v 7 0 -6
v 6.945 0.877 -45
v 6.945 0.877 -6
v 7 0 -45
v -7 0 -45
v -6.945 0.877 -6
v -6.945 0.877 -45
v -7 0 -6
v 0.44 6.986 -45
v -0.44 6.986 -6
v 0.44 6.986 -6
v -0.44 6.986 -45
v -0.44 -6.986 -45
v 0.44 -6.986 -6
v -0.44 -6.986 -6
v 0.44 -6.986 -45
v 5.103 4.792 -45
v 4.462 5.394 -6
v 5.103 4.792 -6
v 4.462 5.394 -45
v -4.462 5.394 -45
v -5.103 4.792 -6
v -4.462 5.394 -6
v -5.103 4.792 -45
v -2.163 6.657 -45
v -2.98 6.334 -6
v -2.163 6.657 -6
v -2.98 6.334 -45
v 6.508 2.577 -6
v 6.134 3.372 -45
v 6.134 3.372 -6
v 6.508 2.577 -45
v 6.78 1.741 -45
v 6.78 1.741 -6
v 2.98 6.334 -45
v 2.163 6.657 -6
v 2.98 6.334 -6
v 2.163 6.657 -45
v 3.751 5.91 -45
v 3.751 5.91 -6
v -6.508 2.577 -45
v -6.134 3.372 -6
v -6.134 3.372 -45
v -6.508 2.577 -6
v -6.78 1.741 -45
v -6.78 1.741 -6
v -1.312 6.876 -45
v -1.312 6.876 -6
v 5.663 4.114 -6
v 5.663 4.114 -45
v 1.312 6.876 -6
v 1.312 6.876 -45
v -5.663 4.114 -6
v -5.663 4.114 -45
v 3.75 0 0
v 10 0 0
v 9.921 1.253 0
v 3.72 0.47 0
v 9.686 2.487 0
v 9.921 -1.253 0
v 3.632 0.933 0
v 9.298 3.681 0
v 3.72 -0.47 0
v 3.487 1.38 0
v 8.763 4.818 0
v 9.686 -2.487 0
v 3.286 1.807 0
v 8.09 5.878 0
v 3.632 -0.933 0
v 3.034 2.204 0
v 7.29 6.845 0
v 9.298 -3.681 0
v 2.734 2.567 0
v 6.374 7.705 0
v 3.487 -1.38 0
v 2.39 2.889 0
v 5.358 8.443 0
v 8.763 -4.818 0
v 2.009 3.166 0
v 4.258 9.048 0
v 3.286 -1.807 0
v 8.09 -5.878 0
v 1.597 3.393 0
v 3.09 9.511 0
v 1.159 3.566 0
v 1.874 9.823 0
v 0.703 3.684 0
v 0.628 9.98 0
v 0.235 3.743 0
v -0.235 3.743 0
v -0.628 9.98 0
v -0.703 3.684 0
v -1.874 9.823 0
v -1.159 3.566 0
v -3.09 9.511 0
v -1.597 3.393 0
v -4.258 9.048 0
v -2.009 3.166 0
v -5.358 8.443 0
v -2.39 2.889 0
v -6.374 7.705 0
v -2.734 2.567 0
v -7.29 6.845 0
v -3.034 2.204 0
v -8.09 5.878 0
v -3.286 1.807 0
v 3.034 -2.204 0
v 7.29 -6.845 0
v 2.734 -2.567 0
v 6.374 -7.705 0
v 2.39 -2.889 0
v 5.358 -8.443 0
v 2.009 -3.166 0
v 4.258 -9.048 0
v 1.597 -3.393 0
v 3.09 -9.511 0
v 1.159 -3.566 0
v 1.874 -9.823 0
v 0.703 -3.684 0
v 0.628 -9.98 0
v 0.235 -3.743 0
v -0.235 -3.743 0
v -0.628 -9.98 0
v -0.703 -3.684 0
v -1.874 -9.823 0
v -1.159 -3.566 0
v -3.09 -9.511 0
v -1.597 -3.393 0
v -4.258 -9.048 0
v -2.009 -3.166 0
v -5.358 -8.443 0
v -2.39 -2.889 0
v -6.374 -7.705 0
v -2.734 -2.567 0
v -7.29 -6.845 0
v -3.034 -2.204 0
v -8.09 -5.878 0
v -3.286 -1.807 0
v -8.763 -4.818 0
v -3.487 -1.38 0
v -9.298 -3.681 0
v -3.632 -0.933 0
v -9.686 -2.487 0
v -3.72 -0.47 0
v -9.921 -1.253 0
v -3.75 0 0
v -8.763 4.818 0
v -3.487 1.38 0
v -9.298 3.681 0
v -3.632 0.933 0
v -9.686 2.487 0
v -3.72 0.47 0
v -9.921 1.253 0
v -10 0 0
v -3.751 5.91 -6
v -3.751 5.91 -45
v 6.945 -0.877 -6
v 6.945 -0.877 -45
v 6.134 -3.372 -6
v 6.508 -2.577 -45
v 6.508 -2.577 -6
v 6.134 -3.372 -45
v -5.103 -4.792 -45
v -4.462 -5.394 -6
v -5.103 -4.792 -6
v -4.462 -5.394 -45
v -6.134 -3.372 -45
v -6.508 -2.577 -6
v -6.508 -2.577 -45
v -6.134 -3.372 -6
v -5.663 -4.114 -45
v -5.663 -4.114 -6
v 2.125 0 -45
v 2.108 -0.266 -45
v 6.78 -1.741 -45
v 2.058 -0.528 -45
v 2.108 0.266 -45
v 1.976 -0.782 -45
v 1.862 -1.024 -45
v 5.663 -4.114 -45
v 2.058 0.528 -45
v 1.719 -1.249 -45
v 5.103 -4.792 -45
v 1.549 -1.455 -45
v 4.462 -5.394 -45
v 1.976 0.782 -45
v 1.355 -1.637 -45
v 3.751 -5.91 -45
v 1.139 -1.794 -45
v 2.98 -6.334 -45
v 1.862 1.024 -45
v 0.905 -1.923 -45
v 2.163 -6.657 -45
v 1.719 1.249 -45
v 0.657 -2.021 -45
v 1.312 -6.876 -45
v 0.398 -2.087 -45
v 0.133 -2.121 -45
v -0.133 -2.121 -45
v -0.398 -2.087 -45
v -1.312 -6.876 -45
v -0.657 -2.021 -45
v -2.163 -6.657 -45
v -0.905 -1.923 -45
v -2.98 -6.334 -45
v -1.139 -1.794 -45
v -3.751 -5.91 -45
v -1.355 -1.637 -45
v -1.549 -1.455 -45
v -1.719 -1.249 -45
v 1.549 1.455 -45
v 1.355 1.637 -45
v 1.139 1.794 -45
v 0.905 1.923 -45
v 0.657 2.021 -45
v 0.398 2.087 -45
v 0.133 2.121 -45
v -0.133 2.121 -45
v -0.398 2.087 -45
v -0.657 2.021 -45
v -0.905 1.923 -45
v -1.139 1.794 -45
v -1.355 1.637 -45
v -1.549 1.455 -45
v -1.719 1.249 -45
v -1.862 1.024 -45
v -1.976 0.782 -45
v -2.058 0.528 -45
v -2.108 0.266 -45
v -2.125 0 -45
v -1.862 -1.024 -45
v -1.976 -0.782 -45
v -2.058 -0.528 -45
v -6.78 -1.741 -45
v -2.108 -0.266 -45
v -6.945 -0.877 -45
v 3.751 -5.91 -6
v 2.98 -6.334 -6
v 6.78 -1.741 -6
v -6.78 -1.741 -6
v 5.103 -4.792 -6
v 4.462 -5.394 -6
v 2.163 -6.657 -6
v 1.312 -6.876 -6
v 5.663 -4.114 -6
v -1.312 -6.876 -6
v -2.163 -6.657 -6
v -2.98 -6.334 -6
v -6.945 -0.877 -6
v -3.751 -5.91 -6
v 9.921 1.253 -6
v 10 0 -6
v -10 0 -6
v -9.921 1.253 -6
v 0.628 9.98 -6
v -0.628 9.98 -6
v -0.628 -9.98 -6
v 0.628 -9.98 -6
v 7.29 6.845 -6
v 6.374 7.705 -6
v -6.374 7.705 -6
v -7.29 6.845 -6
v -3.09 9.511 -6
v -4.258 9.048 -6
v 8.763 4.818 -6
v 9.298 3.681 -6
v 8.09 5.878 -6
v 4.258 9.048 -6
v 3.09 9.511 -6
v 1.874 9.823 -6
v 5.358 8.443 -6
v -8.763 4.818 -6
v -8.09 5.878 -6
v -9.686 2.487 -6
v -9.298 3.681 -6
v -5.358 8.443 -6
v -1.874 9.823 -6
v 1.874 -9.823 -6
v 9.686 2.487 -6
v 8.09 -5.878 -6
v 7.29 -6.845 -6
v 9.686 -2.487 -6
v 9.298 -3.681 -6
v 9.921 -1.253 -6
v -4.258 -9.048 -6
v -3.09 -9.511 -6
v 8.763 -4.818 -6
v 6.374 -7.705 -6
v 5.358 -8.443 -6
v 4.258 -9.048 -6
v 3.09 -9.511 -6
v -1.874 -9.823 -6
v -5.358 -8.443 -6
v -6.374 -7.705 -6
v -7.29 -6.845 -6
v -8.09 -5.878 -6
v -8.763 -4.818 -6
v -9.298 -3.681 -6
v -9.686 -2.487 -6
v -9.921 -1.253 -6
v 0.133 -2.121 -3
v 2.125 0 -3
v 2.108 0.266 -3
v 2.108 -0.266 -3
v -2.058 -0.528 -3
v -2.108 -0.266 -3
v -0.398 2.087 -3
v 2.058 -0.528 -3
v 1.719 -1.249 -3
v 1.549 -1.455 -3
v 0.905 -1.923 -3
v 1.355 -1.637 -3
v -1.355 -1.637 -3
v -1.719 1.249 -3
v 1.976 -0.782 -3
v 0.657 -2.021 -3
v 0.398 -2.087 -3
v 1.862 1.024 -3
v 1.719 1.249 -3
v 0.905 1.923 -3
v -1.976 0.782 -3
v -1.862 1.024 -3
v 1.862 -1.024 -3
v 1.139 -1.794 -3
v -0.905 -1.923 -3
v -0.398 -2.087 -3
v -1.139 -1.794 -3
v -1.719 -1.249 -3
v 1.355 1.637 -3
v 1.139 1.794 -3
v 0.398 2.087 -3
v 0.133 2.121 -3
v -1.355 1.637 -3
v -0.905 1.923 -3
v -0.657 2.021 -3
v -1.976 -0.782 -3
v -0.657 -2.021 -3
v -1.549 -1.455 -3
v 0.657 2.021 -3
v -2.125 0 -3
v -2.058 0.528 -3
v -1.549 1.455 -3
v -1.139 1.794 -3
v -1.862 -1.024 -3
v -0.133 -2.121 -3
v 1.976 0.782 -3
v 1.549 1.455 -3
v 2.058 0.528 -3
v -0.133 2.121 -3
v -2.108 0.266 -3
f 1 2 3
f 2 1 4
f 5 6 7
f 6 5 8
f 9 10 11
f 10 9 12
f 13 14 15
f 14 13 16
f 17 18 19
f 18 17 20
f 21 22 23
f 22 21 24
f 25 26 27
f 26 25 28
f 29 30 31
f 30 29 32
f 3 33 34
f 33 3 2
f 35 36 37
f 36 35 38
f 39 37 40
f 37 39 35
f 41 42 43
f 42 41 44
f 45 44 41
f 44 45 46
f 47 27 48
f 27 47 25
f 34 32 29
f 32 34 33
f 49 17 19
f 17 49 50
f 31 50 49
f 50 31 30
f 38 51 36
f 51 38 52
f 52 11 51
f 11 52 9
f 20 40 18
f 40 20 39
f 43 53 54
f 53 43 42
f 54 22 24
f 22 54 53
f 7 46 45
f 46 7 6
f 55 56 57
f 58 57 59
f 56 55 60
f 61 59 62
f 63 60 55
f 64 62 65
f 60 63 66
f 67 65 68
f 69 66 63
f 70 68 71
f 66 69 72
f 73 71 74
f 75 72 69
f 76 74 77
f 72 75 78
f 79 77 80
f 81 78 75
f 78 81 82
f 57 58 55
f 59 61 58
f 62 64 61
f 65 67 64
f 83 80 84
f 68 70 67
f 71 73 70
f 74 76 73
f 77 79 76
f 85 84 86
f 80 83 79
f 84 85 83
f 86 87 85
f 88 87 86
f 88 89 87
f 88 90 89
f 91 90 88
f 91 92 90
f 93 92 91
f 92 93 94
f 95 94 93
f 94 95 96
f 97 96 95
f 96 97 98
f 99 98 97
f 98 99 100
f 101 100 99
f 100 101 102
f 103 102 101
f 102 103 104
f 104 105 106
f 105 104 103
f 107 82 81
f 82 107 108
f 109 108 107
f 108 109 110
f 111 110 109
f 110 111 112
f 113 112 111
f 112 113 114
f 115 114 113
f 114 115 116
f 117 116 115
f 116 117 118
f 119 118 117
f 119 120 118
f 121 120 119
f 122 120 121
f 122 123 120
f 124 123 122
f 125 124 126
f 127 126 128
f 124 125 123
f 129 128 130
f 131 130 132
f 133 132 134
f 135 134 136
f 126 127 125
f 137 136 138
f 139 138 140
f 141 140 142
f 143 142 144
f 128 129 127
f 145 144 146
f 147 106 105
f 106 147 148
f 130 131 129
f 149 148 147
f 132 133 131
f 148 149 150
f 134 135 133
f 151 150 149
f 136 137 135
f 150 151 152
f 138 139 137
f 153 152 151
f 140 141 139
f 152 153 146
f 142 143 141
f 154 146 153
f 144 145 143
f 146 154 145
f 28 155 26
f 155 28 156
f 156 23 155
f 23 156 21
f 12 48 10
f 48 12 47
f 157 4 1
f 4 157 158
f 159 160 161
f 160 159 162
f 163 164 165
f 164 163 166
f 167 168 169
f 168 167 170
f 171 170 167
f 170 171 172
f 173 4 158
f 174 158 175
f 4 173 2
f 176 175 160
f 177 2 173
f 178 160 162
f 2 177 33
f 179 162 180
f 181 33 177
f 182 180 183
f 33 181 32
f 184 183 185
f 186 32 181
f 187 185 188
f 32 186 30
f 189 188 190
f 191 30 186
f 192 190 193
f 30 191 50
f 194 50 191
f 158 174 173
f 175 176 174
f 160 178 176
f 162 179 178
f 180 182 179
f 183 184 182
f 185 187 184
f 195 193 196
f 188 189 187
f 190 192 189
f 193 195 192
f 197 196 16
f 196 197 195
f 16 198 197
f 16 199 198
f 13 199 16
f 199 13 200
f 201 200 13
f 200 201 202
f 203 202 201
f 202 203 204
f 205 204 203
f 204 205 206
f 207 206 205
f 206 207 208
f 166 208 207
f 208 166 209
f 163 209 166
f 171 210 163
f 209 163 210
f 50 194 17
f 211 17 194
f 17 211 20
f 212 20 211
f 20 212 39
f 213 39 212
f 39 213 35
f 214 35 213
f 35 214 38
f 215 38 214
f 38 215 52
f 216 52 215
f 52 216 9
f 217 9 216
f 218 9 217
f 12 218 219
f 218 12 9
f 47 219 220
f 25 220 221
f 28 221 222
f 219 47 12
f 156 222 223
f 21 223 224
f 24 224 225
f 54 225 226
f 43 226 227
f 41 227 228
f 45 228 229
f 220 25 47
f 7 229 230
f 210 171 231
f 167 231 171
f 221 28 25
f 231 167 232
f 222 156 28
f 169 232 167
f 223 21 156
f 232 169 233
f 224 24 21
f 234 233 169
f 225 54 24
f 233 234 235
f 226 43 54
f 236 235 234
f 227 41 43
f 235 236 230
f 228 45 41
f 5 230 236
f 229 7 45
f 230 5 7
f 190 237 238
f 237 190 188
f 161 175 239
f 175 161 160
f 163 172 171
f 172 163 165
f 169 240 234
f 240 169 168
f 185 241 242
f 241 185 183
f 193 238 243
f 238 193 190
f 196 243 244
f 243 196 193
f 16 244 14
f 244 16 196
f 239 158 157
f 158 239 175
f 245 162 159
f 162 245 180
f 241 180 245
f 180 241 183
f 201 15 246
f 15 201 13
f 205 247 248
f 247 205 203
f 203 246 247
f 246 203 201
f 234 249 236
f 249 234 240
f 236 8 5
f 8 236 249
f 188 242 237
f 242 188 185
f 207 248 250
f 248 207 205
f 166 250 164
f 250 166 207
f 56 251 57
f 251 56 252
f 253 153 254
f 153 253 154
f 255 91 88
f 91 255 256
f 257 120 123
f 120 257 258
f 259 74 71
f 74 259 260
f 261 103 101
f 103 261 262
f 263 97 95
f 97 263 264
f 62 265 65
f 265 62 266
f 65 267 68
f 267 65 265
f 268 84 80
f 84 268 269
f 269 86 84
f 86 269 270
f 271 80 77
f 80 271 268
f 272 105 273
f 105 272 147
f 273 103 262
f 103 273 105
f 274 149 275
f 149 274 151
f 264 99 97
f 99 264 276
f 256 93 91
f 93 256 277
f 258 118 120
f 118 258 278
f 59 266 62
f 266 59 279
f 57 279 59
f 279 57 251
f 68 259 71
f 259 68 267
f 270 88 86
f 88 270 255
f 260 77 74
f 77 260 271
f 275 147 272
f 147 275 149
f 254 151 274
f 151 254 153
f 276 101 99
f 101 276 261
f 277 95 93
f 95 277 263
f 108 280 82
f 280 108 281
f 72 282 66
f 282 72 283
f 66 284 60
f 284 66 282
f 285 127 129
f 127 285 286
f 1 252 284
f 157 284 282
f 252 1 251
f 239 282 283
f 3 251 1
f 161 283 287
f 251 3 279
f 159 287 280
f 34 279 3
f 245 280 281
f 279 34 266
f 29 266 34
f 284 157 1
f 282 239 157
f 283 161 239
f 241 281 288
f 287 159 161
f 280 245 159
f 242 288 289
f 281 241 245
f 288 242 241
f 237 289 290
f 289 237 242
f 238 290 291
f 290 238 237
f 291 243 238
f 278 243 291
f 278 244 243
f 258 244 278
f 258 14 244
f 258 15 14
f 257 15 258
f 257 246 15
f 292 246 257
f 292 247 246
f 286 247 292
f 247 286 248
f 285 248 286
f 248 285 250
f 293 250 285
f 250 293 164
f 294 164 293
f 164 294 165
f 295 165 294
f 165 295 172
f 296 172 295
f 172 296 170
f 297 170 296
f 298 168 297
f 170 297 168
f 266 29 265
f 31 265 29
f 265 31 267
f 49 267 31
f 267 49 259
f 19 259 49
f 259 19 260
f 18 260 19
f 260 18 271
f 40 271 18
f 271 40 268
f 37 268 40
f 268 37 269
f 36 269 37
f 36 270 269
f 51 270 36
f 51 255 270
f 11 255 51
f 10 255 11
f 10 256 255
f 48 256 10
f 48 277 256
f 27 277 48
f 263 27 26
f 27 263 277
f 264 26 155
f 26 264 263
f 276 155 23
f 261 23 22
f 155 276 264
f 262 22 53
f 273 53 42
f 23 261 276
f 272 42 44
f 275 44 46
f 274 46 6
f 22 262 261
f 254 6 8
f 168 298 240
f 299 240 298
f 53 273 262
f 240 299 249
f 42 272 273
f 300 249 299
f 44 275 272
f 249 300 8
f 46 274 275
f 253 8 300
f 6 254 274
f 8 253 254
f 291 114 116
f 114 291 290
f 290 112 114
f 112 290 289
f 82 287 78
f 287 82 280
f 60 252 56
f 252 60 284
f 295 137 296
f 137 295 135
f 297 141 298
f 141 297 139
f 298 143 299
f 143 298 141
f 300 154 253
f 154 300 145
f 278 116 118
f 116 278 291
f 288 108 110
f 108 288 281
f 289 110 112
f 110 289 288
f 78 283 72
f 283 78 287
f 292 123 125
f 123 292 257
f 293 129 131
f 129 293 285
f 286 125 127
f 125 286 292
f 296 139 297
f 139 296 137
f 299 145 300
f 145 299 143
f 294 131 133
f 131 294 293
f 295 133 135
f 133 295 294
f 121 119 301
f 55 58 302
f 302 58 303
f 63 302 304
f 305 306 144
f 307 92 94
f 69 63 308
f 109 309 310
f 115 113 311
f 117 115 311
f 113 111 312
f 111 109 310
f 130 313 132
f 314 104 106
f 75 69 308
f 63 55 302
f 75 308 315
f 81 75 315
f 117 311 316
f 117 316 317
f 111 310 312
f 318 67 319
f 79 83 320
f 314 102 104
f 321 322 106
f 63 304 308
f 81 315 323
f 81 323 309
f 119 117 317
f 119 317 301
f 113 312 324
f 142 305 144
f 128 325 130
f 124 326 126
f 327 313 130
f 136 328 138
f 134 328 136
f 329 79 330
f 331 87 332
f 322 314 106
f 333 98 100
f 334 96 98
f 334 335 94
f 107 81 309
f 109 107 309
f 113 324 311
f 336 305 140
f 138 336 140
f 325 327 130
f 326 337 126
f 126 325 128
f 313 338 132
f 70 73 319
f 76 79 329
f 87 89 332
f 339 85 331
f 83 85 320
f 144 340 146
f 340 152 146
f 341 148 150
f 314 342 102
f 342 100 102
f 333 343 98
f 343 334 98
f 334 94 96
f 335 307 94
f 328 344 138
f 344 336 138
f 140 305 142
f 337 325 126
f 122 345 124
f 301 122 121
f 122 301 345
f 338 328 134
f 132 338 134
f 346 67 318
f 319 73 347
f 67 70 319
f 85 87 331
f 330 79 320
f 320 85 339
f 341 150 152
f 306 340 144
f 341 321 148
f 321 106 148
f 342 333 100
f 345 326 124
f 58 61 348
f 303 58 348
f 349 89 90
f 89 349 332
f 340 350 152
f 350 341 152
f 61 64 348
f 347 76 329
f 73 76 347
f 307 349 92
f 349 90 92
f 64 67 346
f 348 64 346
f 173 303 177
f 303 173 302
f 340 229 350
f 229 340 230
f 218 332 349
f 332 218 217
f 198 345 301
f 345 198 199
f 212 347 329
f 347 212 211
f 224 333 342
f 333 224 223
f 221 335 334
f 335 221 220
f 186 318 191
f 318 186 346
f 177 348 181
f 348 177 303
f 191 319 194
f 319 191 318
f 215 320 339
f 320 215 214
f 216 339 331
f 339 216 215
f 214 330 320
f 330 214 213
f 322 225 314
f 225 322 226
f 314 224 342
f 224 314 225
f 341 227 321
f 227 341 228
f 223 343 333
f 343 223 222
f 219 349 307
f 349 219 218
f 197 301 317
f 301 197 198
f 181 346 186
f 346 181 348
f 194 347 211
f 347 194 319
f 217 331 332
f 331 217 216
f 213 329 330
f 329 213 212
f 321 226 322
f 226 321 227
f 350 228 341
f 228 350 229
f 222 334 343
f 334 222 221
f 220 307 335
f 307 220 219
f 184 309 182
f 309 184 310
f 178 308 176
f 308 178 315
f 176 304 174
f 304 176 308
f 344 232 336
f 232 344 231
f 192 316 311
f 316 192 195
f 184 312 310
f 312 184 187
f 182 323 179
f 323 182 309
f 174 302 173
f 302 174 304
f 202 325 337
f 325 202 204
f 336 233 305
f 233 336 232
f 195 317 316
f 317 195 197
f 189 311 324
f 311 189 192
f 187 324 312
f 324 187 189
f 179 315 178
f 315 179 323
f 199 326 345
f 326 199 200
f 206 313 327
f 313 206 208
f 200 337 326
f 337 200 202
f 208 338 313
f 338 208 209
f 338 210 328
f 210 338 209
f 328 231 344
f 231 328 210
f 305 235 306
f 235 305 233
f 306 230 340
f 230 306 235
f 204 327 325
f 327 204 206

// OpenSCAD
$fn = 50;


difference() {
	union() {
		translate(v = [0, 0, -45.0000000000]) {
			cylinder(h = 45, r = 7.0000000000);
		}
		translate(v = [0, 0, -6.0000000000]) {
			cylinder(h = 6, r = 10.0000000000);
		}
	}
	union() {
		translate(v = [0, 0, 0]) {
			rotate(a = [0, 0, 0]) {
				difference() {
					union() {
						#translate(v = [0, 0, -45.0000000000]) {
							cylinder(h = 45, r = 2.0000000000);
						}
						#translate(v = [0, 0, -3]) {
							cylinder(h = 3, r1 = 2.1250000000, r2 = 3.7500000000);
						}
						#translate(v = [0, 0, -45.0000000000]) {
							cylinder(h = 45, r = 2.1250000000);
						}
						#translate(v = [0, 0, -45.0000000000]) {
							cylinder(h = 45, r = 2.0000000000);
						}
					}
					union();
				}
			}
		}
	}
}
